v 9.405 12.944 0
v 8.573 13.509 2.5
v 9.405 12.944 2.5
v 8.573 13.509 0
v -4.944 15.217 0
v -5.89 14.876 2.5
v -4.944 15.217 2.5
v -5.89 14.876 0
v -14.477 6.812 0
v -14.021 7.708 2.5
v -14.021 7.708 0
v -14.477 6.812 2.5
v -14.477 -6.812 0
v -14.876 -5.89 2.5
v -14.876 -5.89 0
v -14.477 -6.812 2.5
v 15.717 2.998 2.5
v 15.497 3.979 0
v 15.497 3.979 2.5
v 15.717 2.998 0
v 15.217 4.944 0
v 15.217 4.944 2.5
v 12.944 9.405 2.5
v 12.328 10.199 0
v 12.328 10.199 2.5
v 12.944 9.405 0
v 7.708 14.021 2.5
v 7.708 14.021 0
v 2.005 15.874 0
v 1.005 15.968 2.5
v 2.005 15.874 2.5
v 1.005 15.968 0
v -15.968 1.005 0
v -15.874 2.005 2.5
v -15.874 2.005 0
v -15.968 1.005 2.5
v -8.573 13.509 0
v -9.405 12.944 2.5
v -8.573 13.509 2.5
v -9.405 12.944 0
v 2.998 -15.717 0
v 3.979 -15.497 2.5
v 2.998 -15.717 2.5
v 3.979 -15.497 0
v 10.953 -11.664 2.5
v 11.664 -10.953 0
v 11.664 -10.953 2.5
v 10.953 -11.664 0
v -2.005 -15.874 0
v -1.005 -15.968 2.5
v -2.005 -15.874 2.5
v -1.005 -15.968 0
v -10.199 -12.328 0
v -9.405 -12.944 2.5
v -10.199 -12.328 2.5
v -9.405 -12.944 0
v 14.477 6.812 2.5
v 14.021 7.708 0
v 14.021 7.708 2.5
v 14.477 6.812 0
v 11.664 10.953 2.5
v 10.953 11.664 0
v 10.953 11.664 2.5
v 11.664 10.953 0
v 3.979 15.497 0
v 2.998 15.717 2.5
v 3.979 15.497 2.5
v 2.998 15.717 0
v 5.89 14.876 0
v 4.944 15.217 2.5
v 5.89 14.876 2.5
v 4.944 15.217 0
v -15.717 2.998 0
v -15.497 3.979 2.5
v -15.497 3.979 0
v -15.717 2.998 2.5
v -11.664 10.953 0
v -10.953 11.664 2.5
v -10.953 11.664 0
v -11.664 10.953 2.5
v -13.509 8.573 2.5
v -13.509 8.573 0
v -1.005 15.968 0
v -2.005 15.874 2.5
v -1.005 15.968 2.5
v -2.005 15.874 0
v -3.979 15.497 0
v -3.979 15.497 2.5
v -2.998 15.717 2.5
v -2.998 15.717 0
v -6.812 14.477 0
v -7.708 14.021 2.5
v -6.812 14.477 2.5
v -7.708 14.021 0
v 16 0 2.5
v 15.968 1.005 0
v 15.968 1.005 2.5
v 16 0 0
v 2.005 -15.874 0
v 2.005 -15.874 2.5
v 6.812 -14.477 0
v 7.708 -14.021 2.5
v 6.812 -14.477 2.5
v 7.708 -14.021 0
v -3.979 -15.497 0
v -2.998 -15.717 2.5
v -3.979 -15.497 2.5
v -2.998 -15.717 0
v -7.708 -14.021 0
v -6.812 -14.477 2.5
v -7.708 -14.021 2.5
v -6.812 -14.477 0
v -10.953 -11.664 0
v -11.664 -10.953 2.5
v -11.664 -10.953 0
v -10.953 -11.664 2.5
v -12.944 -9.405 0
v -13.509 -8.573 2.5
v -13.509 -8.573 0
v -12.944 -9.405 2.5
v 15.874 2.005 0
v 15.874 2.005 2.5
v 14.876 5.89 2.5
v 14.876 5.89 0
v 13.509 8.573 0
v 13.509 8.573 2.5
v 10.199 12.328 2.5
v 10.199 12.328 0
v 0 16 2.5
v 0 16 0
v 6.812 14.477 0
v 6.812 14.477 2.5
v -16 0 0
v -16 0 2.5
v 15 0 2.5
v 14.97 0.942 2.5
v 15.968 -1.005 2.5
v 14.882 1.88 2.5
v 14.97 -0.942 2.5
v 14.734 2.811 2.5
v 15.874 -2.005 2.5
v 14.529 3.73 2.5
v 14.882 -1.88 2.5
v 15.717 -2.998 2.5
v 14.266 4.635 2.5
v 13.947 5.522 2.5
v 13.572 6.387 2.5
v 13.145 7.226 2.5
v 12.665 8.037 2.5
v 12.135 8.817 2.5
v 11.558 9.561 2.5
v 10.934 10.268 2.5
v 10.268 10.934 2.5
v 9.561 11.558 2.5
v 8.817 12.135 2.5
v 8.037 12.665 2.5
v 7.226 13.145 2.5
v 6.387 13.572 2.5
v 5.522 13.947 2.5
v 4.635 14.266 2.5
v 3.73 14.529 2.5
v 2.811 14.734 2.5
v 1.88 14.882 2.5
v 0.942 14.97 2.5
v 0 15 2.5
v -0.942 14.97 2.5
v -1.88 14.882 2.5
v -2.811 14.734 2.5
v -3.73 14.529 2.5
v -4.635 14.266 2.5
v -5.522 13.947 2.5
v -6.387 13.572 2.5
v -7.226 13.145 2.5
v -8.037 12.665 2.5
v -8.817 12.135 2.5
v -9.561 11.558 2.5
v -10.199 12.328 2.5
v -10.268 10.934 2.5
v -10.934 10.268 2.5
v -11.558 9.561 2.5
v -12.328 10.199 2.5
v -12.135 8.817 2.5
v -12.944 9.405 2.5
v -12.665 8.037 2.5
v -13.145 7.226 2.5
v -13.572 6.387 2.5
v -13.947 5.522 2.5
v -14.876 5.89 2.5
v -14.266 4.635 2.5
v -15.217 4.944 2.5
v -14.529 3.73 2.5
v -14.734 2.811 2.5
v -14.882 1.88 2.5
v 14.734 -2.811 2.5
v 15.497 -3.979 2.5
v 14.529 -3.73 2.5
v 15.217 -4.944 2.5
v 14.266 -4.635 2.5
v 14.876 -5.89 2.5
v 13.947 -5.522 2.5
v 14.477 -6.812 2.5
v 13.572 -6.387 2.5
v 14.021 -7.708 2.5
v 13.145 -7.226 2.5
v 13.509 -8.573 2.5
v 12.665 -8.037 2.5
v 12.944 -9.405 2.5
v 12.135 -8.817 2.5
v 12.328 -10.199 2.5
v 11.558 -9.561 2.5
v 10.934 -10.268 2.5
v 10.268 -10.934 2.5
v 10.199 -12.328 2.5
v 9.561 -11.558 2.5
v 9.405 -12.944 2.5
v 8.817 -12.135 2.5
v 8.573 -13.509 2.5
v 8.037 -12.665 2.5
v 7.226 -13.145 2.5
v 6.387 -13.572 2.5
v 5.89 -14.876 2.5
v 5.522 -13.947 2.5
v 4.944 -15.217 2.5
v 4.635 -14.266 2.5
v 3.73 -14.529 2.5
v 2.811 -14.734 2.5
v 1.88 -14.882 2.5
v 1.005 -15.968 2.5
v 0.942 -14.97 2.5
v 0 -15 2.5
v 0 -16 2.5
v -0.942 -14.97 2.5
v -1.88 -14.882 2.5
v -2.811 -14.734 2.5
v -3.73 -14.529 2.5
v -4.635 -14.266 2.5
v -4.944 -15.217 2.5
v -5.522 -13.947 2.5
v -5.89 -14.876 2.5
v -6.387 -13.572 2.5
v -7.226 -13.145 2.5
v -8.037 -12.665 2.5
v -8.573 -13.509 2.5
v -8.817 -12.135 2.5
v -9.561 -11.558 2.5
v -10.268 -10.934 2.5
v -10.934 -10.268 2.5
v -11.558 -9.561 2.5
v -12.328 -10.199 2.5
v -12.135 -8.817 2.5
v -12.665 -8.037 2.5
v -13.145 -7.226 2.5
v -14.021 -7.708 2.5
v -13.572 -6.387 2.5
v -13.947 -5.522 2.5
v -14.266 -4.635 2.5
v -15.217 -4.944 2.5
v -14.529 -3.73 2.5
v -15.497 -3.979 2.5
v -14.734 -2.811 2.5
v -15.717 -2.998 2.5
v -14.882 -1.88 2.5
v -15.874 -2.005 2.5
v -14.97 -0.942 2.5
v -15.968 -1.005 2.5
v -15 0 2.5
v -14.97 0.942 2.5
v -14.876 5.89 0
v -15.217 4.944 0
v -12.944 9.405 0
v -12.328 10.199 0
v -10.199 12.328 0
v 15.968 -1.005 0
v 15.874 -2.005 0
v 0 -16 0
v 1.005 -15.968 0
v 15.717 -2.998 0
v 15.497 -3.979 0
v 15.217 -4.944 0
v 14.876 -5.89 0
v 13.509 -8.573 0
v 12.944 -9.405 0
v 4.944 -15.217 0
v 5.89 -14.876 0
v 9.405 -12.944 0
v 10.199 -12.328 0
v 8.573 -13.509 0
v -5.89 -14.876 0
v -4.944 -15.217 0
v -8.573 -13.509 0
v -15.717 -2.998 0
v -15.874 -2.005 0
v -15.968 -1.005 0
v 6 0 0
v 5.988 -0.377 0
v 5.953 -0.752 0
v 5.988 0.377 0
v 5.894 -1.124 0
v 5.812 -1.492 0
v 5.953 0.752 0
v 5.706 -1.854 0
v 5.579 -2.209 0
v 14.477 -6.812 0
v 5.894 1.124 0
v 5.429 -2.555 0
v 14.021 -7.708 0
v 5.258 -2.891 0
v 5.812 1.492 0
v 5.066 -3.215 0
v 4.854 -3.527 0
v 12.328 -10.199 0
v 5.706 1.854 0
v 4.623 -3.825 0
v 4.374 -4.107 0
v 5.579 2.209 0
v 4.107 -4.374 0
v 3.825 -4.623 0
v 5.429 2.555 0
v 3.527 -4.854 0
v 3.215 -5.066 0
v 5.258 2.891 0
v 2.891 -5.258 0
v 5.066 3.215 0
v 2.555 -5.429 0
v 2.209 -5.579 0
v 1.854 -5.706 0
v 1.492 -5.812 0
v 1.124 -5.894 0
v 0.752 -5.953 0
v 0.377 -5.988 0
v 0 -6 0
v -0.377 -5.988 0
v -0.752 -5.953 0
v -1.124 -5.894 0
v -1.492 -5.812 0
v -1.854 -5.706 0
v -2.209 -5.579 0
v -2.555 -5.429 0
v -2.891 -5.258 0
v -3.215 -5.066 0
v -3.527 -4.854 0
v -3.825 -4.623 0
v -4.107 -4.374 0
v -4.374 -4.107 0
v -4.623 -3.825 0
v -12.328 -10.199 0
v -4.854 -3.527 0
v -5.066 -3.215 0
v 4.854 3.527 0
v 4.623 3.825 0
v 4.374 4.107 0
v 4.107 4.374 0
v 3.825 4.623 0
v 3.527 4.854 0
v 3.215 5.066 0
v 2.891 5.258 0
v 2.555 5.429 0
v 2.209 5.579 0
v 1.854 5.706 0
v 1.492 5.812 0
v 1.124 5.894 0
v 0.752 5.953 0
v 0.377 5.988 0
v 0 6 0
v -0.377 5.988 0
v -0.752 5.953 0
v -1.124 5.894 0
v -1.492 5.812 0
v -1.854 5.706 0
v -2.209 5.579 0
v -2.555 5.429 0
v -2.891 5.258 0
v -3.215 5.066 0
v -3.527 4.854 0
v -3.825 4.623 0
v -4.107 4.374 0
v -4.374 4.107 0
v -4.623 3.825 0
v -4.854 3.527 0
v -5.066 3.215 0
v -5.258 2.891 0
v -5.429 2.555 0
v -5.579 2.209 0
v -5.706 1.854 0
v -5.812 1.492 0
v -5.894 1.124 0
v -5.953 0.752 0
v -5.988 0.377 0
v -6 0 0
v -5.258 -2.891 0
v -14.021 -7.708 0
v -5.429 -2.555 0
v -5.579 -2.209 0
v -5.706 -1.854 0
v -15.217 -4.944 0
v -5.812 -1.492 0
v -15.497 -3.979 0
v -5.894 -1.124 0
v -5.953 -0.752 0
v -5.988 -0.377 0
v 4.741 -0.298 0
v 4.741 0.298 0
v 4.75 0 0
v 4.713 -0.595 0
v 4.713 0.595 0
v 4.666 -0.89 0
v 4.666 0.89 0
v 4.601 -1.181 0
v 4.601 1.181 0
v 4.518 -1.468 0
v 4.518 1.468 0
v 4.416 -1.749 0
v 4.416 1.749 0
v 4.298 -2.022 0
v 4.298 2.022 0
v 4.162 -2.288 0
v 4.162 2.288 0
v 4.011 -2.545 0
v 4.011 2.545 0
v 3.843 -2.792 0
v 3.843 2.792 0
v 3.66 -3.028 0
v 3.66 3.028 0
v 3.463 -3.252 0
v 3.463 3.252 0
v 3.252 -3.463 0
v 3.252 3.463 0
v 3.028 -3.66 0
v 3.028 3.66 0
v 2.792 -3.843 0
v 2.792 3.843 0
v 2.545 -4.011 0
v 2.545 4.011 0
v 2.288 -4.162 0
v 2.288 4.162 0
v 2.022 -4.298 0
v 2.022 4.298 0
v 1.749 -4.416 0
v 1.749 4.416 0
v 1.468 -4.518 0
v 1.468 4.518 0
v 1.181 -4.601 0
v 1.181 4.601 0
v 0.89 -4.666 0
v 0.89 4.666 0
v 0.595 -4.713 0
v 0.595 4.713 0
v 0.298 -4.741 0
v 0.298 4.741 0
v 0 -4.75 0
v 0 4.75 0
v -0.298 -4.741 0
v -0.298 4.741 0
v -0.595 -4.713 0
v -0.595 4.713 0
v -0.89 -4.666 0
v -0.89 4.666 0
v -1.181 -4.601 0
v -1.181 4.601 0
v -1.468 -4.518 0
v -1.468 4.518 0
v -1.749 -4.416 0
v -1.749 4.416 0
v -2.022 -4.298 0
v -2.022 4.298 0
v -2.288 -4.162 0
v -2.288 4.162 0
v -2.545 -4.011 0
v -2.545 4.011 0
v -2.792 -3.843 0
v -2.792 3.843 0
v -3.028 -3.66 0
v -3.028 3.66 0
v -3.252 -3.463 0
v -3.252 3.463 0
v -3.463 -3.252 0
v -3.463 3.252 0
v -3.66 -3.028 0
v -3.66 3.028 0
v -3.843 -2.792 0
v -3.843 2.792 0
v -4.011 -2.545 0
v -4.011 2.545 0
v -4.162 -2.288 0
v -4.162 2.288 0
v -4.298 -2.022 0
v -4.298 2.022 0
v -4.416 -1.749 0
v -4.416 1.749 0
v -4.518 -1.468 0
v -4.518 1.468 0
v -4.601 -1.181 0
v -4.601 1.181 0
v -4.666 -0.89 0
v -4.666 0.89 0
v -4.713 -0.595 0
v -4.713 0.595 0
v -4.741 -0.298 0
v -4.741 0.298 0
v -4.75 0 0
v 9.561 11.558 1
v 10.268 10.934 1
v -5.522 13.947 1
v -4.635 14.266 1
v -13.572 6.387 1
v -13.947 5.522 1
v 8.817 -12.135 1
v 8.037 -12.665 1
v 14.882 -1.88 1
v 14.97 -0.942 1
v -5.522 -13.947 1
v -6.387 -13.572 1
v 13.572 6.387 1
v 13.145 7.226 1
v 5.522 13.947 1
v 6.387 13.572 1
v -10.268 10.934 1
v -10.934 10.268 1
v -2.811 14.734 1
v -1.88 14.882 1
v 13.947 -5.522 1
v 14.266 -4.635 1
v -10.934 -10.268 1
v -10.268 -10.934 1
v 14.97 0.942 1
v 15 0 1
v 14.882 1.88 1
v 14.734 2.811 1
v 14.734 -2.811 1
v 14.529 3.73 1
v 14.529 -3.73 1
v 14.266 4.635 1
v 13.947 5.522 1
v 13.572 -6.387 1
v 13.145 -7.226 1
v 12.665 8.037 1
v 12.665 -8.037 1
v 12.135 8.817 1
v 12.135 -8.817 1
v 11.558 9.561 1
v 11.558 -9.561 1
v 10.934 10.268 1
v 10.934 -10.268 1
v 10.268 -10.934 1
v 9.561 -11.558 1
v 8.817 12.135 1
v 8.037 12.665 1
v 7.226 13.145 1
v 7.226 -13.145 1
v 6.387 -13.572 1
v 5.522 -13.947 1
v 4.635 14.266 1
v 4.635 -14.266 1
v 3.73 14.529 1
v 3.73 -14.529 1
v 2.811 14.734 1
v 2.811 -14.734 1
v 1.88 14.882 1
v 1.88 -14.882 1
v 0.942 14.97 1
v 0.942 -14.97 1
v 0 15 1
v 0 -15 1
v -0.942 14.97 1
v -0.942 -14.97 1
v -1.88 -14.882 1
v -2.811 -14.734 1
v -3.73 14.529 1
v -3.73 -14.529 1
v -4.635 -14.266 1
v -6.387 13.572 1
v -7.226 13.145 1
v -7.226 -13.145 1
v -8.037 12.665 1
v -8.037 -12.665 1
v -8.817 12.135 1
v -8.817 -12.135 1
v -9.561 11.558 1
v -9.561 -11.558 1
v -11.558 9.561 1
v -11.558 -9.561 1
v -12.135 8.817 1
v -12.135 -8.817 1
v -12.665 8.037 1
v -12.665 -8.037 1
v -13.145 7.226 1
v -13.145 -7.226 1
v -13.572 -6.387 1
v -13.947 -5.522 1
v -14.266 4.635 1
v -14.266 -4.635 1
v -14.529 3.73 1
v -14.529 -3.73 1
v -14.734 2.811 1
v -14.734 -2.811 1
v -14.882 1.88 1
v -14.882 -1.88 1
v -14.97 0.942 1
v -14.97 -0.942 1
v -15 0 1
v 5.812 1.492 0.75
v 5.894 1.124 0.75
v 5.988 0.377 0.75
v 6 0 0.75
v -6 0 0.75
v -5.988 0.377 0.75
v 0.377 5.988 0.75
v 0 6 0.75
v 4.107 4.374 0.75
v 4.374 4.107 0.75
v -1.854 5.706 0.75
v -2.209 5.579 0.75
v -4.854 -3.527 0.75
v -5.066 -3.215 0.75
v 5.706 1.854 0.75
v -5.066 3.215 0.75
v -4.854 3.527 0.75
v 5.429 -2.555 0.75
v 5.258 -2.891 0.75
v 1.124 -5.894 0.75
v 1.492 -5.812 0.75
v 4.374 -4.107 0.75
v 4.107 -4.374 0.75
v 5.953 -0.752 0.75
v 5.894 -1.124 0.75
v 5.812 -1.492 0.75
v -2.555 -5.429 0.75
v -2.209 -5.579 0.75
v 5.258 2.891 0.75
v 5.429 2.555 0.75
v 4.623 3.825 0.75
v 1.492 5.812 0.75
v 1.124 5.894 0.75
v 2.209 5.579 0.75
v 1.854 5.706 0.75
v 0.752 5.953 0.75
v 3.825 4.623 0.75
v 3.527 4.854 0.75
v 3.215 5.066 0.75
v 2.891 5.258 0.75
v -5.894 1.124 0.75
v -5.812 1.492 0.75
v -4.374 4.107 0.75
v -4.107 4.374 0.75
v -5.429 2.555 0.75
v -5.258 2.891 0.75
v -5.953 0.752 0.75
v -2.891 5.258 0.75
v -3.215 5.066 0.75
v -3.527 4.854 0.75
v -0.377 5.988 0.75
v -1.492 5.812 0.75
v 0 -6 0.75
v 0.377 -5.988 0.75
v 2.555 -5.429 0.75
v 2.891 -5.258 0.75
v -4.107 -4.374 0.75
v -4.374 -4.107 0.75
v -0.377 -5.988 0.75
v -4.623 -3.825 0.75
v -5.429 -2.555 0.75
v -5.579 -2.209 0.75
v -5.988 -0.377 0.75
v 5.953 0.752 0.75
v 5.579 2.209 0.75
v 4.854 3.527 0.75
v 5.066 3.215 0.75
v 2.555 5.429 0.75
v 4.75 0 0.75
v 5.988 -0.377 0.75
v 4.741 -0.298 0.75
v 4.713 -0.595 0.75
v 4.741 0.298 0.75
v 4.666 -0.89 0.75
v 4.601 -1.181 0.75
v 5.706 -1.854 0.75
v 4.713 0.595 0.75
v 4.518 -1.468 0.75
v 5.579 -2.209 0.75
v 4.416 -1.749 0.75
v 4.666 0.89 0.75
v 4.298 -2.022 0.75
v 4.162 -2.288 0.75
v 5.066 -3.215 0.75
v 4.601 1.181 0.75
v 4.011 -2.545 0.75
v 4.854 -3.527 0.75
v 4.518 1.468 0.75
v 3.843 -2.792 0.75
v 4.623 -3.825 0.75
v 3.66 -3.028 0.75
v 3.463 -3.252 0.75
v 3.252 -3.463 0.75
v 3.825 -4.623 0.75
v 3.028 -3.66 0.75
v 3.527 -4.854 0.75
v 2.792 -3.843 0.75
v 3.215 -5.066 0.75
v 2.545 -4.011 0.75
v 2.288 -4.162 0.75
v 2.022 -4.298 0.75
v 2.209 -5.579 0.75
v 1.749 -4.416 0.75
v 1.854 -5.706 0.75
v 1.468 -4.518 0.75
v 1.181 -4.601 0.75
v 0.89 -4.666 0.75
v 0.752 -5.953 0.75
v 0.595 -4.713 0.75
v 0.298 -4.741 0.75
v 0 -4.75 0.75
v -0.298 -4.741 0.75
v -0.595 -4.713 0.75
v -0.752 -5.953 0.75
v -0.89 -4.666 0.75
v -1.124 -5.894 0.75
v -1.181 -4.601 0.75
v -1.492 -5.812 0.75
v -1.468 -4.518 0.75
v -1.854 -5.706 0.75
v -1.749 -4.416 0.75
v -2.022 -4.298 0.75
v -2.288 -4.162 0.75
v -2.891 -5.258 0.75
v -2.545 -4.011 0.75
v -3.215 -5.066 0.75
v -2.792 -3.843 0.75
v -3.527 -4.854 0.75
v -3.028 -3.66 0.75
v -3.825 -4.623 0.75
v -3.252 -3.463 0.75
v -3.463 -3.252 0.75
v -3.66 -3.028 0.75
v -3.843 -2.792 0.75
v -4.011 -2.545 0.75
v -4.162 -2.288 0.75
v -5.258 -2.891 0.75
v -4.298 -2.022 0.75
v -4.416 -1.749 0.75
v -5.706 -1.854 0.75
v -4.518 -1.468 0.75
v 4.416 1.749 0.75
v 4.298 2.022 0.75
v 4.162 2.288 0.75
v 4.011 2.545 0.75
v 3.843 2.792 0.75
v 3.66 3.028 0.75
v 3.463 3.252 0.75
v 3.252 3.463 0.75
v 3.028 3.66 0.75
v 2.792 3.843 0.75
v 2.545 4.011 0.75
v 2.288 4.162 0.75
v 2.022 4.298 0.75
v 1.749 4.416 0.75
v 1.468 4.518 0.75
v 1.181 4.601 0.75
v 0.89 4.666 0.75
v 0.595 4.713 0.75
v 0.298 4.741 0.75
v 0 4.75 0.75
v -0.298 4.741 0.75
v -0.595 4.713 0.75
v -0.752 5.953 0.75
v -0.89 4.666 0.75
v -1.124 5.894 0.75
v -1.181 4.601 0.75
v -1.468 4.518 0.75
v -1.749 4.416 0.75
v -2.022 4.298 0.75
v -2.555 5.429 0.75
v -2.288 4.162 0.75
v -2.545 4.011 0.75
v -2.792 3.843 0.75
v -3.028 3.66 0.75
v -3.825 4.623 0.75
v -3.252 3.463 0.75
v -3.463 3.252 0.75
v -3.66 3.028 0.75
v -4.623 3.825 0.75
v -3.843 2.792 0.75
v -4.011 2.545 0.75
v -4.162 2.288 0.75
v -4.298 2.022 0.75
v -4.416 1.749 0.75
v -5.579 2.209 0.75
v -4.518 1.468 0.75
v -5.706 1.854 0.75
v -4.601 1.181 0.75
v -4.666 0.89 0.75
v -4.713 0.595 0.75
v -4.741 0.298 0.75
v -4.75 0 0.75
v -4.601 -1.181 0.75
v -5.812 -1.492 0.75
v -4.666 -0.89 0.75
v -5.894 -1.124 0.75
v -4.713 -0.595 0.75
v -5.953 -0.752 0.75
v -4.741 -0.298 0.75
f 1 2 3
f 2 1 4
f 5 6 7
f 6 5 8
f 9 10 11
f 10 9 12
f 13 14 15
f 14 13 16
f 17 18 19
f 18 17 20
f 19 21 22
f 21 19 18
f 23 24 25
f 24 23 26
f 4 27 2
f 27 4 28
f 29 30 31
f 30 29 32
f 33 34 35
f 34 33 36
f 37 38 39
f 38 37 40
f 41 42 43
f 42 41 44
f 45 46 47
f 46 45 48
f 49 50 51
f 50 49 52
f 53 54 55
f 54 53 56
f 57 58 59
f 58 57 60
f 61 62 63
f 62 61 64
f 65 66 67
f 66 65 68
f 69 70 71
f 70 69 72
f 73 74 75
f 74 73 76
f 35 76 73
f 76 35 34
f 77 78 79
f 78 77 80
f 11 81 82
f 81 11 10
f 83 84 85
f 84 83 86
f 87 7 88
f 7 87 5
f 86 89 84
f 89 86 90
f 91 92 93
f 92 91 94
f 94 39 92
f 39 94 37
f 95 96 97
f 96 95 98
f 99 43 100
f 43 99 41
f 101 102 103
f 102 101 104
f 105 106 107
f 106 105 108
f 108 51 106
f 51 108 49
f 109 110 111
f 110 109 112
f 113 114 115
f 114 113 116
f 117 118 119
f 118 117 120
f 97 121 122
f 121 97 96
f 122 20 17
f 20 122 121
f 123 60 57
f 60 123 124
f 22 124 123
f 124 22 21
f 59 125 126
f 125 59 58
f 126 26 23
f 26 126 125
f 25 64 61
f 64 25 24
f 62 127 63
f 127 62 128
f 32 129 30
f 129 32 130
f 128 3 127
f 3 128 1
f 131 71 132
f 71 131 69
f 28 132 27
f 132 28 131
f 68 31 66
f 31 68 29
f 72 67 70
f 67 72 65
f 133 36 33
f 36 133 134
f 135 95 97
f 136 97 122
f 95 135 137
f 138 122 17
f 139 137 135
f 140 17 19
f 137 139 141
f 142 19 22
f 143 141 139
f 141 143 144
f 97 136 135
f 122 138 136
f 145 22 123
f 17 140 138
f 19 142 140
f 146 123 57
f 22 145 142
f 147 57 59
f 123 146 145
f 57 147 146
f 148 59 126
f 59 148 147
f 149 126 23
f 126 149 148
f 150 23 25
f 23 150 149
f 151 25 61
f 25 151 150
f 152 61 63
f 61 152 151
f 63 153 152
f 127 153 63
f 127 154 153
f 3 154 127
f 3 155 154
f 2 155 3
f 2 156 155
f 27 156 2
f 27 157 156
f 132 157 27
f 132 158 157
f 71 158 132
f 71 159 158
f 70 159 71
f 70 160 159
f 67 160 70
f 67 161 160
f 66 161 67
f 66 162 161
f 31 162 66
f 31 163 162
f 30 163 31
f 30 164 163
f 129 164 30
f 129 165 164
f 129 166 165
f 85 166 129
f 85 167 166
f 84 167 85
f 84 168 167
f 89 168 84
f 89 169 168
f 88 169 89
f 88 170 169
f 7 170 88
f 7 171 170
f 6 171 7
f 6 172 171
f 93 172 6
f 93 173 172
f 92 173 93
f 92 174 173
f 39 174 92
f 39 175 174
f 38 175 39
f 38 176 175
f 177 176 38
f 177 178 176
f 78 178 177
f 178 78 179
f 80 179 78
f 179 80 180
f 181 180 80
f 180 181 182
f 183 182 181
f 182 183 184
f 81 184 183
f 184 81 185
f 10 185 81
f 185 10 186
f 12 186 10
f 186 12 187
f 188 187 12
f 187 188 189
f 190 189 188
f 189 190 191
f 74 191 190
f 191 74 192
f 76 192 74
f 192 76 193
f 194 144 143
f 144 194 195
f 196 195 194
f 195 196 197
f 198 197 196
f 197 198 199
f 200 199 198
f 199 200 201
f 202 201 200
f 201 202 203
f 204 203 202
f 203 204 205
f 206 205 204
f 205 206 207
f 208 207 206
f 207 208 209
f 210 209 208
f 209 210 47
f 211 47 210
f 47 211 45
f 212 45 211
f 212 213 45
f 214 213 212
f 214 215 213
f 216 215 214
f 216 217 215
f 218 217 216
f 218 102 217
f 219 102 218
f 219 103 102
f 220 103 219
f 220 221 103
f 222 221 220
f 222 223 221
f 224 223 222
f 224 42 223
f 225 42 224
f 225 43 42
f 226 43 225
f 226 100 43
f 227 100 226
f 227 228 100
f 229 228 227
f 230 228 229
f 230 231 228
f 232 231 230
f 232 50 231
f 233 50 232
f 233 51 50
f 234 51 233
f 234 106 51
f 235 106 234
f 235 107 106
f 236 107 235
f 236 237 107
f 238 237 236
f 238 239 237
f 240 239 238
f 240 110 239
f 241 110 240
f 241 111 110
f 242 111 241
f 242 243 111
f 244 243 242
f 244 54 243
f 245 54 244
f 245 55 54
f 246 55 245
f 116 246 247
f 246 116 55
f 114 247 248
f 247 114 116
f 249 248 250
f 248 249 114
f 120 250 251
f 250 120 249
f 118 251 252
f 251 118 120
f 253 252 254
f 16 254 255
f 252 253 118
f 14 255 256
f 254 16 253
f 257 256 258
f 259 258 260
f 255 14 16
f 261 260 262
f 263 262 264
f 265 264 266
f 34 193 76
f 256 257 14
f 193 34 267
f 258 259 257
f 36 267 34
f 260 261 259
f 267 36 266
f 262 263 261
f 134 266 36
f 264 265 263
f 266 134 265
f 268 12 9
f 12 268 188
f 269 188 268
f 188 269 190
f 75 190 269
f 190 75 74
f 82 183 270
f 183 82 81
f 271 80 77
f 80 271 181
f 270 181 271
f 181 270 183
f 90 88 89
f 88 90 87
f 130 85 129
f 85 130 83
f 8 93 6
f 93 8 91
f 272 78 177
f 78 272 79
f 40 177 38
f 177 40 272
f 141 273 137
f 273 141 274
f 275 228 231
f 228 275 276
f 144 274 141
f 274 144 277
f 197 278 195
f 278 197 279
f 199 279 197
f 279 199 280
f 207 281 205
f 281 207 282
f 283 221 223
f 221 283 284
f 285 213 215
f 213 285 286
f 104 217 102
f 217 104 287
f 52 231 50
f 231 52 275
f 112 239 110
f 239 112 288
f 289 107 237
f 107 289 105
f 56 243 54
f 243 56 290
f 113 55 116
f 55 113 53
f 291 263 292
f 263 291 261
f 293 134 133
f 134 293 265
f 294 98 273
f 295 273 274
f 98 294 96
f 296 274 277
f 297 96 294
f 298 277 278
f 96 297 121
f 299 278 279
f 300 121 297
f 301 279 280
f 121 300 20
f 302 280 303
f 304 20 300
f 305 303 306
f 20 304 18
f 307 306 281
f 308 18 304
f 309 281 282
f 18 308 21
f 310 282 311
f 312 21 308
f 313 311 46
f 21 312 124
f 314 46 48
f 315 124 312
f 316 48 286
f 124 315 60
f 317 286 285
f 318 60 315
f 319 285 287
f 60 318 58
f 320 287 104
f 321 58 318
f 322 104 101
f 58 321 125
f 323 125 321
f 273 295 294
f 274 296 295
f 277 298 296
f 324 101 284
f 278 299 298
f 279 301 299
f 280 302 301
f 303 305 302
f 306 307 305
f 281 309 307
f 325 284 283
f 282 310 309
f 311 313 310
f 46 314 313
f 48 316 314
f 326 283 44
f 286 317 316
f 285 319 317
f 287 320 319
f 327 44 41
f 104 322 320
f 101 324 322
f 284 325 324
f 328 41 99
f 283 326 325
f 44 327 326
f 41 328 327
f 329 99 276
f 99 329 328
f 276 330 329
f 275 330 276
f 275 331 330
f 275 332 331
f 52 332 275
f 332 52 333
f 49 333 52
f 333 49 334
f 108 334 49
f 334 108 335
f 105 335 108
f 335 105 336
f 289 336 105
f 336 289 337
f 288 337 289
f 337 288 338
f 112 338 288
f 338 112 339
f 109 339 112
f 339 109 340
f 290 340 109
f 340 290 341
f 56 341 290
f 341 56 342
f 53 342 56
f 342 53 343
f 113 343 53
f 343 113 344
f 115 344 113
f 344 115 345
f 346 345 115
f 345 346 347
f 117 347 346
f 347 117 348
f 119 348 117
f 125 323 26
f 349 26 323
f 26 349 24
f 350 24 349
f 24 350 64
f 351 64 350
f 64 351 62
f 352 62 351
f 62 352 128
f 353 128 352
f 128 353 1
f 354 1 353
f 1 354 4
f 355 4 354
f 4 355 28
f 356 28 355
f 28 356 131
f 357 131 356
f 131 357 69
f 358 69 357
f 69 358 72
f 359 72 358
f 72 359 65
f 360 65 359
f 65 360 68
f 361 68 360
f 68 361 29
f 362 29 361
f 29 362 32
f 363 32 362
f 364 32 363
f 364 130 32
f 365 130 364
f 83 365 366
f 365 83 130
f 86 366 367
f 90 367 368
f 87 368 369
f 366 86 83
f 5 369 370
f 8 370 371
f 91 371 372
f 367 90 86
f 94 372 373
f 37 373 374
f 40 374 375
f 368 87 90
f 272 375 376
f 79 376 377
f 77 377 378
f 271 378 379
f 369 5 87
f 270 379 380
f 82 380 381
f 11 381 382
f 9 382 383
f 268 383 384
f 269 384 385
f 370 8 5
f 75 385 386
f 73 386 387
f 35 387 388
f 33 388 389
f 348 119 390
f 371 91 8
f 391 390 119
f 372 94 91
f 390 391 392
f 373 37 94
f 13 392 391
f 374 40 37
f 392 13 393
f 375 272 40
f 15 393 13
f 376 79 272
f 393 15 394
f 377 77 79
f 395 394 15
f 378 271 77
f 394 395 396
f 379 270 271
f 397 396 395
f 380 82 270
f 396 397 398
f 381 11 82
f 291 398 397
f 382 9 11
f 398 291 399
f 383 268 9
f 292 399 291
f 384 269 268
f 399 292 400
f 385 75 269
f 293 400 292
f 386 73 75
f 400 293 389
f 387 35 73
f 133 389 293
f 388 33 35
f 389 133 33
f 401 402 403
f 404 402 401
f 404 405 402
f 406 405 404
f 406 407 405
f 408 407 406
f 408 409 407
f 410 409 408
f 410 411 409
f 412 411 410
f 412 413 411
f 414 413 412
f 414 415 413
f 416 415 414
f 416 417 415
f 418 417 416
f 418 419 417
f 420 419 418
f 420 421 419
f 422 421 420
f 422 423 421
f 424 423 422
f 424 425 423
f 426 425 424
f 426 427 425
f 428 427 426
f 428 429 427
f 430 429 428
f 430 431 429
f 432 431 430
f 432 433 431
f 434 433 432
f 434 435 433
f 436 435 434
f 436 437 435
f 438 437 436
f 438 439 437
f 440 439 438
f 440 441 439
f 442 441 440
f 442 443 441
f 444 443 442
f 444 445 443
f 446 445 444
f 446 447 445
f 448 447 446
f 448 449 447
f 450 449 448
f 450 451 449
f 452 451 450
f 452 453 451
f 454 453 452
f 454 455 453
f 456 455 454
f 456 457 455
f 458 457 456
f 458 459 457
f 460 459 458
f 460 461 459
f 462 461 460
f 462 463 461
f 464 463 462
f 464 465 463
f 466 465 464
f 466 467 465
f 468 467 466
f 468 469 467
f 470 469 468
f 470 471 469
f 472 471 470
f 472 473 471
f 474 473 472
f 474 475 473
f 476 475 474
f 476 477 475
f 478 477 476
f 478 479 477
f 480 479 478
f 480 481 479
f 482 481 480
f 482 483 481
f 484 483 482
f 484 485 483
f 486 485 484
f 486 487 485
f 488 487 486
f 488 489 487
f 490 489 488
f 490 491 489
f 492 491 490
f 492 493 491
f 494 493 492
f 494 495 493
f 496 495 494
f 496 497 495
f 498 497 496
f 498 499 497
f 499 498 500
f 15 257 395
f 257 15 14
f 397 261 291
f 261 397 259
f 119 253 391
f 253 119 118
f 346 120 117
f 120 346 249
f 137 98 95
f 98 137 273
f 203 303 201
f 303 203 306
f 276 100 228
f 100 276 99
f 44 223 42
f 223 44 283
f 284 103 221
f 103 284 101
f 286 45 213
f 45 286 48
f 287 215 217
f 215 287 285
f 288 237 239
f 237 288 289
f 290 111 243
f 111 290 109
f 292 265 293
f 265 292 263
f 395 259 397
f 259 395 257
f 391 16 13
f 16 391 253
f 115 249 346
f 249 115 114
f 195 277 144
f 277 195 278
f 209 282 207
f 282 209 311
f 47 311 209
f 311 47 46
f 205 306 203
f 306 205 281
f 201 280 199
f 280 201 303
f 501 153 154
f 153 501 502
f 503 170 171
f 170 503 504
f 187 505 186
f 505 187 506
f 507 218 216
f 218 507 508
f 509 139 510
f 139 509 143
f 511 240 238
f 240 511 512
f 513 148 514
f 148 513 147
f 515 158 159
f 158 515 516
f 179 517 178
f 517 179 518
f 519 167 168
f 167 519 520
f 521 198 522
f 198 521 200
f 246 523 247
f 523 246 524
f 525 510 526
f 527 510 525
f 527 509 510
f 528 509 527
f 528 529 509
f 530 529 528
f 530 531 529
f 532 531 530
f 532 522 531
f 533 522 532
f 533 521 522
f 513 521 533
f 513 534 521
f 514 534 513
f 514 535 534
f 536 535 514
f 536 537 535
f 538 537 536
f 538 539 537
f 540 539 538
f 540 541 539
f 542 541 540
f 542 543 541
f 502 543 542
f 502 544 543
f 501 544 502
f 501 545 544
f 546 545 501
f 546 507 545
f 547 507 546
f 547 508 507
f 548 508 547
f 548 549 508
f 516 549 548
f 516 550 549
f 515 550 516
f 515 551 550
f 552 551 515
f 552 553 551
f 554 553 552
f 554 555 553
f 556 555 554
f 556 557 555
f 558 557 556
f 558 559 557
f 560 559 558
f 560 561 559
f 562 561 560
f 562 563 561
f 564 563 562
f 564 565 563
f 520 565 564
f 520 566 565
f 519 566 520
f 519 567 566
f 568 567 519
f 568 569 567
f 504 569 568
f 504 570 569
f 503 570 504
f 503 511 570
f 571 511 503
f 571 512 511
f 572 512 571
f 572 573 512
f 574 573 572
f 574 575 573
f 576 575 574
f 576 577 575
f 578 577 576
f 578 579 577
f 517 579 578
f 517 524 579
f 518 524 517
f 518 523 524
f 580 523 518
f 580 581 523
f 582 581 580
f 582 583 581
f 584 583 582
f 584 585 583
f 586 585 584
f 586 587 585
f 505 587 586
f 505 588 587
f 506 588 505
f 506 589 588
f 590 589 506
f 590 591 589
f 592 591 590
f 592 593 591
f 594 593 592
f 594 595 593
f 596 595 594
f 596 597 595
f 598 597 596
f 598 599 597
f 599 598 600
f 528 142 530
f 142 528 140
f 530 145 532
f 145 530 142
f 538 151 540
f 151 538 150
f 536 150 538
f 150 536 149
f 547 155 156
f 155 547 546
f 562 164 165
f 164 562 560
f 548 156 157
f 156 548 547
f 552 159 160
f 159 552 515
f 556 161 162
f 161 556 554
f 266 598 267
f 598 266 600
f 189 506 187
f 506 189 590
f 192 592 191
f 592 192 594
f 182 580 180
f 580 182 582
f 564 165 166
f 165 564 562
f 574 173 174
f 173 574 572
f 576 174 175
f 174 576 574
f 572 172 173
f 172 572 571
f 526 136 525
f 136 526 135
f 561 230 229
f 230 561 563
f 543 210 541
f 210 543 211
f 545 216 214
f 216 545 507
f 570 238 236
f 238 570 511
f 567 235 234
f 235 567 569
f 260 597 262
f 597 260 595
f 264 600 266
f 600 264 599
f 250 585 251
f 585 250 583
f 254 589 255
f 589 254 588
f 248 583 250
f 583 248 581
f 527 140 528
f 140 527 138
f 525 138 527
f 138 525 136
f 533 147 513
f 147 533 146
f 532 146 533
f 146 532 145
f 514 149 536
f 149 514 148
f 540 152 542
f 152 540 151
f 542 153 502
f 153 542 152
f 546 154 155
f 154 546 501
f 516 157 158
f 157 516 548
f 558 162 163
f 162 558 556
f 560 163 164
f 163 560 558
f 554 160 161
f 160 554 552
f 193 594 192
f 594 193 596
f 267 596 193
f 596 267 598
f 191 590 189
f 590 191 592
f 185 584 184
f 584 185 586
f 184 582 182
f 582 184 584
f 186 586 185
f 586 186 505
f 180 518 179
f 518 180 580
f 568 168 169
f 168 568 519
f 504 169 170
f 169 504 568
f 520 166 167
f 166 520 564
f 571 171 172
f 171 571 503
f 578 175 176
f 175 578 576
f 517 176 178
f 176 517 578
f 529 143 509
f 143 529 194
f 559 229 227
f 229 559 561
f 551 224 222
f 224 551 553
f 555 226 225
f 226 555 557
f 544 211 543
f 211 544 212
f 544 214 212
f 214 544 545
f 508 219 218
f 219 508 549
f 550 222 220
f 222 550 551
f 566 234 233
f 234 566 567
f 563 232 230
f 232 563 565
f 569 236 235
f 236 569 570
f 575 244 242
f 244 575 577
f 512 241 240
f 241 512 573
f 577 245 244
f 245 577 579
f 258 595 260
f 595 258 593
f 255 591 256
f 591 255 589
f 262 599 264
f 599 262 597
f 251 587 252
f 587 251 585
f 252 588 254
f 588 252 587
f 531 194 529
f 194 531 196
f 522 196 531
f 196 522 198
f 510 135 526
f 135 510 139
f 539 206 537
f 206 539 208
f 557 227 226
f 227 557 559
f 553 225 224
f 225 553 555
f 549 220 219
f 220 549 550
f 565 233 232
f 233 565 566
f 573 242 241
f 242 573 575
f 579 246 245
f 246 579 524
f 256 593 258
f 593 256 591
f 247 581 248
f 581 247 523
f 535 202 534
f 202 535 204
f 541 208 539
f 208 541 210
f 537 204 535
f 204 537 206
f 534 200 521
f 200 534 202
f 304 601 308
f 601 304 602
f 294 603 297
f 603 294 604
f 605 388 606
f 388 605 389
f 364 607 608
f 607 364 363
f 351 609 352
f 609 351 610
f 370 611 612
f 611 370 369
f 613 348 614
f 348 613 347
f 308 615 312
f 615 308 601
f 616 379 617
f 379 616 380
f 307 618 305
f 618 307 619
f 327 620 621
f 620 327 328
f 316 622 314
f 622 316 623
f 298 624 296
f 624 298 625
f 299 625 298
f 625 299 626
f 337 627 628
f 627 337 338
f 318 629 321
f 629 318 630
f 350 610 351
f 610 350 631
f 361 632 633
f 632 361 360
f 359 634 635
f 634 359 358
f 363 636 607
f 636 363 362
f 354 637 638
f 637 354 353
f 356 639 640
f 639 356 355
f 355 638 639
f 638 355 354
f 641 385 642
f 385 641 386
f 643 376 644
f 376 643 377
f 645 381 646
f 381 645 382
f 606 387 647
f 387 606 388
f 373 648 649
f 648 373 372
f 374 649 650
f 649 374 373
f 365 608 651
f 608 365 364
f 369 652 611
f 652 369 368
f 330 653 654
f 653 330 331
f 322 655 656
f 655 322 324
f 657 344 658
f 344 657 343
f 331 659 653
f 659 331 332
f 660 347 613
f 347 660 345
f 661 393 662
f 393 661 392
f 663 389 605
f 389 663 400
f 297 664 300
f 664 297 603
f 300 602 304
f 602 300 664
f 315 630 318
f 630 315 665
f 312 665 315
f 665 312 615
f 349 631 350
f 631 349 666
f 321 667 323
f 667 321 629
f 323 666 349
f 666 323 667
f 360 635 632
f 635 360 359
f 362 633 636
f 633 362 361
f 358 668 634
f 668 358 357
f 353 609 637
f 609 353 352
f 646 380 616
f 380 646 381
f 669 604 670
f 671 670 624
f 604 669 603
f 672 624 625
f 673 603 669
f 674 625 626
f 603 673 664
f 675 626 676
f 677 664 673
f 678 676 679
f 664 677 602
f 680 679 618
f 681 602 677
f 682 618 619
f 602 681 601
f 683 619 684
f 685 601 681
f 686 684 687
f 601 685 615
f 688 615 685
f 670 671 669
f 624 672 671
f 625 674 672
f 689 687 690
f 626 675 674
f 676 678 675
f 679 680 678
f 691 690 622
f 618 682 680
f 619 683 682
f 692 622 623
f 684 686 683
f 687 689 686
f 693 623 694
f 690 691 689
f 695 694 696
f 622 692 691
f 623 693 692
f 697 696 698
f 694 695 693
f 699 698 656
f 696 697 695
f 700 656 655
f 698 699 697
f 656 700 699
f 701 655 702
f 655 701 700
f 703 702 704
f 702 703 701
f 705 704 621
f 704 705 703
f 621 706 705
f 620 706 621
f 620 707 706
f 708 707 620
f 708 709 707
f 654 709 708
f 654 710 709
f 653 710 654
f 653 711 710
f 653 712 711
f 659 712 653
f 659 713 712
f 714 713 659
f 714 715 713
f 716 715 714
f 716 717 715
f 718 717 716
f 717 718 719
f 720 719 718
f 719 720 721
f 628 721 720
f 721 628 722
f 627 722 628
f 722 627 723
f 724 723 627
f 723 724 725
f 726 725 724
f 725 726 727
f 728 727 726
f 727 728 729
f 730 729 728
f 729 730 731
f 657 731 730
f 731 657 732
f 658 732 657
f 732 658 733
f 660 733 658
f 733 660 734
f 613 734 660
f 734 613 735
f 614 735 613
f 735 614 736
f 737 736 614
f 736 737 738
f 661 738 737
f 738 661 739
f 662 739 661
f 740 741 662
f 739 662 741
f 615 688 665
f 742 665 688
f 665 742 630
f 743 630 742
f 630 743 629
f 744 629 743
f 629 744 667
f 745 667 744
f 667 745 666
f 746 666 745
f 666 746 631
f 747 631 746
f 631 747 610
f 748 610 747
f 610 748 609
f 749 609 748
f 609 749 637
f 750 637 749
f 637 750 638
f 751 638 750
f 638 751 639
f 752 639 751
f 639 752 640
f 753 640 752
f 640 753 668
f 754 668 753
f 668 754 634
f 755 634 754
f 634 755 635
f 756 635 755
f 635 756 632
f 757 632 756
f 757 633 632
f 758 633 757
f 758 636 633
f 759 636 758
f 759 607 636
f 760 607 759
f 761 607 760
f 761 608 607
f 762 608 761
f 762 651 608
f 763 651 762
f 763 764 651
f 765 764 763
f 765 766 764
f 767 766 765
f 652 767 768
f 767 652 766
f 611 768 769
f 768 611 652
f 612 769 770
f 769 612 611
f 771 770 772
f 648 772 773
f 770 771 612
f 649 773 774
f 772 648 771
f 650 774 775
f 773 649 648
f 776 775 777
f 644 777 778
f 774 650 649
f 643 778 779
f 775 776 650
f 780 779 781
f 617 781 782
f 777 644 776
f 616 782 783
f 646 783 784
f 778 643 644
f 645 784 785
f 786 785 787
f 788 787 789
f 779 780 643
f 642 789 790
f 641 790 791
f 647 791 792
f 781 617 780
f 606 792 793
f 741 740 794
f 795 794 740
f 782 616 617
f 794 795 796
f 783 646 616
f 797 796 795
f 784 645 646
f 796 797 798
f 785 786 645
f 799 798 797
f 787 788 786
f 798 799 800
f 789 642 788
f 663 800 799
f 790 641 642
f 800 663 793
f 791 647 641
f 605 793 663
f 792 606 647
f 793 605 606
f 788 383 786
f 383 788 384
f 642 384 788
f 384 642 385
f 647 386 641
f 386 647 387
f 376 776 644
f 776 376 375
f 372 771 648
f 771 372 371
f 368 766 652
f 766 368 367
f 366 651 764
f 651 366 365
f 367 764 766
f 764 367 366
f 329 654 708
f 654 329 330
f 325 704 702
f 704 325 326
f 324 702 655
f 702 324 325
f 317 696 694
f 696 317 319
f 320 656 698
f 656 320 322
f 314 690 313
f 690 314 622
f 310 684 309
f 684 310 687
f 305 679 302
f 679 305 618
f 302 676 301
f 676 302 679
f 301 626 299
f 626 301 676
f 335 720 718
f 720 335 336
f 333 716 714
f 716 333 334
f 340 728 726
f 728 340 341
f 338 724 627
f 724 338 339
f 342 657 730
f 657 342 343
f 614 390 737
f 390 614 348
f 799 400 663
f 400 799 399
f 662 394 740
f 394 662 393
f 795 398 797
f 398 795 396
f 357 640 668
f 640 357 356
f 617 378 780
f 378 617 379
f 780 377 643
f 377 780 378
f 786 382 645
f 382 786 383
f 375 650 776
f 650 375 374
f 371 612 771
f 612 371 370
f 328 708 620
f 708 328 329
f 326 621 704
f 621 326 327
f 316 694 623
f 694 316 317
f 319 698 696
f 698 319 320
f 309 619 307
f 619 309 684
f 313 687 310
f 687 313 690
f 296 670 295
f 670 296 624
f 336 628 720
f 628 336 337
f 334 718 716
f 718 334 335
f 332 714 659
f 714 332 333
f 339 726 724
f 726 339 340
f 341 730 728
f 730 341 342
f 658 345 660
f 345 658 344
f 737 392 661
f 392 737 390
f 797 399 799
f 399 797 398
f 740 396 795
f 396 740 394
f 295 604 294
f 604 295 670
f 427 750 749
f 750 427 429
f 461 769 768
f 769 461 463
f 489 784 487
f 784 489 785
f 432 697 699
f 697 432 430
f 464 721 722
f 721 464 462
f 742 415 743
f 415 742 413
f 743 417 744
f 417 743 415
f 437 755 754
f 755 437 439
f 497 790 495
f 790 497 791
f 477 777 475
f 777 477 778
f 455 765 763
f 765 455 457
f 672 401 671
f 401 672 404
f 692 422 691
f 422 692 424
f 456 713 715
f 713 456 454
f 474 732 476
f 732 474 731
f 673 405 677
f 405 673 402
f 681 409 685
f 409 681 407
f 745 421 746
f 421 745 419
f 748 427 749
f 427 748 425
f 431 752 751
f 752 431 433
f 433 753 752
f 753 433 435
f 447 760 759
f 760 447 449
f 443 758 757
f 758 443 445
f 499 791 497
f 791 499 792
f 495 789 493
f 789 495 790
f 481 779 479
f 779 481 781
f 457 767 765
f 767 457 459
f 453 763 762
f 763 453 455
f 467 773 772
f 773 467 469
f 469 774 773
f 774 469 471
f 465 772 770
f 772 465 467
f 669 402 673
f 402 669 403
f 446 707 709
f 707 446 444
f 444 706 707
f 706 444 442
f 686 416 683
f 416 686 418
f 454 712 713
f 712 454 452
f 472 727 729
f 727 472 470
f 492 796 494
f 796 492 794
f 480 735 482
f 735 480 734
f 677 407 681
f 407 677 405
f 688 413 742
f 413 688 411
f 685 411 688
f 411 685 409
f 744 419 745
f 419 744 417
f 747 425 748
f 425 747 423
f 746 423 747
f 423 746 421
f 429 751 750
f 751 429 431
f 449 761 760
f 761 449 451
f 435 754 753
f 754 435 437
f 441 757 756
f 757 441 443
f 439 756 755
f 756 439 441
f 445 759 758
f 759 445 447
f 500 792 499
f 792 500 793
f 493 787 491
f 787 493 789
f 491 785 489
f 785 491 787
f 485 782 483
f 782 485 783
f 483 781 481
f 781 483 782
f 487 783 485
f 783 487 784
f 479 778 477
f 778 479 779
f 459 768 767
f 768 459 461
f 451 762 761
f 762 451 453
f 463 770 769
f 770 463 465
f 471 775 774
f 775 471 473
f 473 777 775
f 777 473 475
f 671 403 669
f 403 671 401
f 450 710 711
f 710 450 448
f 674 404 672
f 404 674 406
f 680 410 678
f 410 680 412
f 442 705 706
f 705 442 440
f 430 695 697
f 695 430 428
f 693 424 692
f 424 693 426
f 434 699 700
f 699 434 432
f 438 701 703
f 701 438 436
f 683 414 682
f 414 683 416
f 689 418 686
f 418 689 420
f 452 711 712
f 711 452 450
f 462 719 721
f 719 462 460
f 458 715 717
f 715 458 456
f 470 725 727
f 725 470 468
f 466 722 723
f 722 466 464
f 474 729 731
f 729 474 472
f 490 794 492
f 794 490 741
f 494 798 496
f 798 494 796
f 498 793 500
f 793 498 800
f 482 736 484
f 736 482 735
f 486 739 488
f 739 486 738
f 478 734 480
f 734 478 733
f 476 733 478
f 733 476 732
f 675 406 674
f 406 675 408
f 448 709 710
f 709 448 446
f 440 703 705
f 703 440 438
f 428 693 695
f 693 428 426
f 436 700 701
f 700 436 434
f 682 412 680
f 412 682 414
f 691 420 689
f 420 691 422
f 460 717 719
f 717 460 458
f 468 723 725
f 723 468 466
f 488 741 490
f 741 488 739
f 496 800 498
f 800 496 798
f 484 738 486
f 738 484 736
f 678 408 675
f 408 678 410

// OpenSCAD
diameter      = 32;
stem_height   = 1;
concave_depth = 2.5;

difference() {
difference() {
    cylinder(h=concave_depth, r=diameter/2, $fn=100);
    translate([0,0,1]) {
      cylinder(h=concave_depth, r=(diameter/2)-1, $fn=100);  
    }
  };    

translate([0,0,-.25]){
difference() {
  cylinder(h=stem_height, r=6, $fn=100);
  cylinder(h=stem_height, r=4.75, $fn=100);
};
}
}
